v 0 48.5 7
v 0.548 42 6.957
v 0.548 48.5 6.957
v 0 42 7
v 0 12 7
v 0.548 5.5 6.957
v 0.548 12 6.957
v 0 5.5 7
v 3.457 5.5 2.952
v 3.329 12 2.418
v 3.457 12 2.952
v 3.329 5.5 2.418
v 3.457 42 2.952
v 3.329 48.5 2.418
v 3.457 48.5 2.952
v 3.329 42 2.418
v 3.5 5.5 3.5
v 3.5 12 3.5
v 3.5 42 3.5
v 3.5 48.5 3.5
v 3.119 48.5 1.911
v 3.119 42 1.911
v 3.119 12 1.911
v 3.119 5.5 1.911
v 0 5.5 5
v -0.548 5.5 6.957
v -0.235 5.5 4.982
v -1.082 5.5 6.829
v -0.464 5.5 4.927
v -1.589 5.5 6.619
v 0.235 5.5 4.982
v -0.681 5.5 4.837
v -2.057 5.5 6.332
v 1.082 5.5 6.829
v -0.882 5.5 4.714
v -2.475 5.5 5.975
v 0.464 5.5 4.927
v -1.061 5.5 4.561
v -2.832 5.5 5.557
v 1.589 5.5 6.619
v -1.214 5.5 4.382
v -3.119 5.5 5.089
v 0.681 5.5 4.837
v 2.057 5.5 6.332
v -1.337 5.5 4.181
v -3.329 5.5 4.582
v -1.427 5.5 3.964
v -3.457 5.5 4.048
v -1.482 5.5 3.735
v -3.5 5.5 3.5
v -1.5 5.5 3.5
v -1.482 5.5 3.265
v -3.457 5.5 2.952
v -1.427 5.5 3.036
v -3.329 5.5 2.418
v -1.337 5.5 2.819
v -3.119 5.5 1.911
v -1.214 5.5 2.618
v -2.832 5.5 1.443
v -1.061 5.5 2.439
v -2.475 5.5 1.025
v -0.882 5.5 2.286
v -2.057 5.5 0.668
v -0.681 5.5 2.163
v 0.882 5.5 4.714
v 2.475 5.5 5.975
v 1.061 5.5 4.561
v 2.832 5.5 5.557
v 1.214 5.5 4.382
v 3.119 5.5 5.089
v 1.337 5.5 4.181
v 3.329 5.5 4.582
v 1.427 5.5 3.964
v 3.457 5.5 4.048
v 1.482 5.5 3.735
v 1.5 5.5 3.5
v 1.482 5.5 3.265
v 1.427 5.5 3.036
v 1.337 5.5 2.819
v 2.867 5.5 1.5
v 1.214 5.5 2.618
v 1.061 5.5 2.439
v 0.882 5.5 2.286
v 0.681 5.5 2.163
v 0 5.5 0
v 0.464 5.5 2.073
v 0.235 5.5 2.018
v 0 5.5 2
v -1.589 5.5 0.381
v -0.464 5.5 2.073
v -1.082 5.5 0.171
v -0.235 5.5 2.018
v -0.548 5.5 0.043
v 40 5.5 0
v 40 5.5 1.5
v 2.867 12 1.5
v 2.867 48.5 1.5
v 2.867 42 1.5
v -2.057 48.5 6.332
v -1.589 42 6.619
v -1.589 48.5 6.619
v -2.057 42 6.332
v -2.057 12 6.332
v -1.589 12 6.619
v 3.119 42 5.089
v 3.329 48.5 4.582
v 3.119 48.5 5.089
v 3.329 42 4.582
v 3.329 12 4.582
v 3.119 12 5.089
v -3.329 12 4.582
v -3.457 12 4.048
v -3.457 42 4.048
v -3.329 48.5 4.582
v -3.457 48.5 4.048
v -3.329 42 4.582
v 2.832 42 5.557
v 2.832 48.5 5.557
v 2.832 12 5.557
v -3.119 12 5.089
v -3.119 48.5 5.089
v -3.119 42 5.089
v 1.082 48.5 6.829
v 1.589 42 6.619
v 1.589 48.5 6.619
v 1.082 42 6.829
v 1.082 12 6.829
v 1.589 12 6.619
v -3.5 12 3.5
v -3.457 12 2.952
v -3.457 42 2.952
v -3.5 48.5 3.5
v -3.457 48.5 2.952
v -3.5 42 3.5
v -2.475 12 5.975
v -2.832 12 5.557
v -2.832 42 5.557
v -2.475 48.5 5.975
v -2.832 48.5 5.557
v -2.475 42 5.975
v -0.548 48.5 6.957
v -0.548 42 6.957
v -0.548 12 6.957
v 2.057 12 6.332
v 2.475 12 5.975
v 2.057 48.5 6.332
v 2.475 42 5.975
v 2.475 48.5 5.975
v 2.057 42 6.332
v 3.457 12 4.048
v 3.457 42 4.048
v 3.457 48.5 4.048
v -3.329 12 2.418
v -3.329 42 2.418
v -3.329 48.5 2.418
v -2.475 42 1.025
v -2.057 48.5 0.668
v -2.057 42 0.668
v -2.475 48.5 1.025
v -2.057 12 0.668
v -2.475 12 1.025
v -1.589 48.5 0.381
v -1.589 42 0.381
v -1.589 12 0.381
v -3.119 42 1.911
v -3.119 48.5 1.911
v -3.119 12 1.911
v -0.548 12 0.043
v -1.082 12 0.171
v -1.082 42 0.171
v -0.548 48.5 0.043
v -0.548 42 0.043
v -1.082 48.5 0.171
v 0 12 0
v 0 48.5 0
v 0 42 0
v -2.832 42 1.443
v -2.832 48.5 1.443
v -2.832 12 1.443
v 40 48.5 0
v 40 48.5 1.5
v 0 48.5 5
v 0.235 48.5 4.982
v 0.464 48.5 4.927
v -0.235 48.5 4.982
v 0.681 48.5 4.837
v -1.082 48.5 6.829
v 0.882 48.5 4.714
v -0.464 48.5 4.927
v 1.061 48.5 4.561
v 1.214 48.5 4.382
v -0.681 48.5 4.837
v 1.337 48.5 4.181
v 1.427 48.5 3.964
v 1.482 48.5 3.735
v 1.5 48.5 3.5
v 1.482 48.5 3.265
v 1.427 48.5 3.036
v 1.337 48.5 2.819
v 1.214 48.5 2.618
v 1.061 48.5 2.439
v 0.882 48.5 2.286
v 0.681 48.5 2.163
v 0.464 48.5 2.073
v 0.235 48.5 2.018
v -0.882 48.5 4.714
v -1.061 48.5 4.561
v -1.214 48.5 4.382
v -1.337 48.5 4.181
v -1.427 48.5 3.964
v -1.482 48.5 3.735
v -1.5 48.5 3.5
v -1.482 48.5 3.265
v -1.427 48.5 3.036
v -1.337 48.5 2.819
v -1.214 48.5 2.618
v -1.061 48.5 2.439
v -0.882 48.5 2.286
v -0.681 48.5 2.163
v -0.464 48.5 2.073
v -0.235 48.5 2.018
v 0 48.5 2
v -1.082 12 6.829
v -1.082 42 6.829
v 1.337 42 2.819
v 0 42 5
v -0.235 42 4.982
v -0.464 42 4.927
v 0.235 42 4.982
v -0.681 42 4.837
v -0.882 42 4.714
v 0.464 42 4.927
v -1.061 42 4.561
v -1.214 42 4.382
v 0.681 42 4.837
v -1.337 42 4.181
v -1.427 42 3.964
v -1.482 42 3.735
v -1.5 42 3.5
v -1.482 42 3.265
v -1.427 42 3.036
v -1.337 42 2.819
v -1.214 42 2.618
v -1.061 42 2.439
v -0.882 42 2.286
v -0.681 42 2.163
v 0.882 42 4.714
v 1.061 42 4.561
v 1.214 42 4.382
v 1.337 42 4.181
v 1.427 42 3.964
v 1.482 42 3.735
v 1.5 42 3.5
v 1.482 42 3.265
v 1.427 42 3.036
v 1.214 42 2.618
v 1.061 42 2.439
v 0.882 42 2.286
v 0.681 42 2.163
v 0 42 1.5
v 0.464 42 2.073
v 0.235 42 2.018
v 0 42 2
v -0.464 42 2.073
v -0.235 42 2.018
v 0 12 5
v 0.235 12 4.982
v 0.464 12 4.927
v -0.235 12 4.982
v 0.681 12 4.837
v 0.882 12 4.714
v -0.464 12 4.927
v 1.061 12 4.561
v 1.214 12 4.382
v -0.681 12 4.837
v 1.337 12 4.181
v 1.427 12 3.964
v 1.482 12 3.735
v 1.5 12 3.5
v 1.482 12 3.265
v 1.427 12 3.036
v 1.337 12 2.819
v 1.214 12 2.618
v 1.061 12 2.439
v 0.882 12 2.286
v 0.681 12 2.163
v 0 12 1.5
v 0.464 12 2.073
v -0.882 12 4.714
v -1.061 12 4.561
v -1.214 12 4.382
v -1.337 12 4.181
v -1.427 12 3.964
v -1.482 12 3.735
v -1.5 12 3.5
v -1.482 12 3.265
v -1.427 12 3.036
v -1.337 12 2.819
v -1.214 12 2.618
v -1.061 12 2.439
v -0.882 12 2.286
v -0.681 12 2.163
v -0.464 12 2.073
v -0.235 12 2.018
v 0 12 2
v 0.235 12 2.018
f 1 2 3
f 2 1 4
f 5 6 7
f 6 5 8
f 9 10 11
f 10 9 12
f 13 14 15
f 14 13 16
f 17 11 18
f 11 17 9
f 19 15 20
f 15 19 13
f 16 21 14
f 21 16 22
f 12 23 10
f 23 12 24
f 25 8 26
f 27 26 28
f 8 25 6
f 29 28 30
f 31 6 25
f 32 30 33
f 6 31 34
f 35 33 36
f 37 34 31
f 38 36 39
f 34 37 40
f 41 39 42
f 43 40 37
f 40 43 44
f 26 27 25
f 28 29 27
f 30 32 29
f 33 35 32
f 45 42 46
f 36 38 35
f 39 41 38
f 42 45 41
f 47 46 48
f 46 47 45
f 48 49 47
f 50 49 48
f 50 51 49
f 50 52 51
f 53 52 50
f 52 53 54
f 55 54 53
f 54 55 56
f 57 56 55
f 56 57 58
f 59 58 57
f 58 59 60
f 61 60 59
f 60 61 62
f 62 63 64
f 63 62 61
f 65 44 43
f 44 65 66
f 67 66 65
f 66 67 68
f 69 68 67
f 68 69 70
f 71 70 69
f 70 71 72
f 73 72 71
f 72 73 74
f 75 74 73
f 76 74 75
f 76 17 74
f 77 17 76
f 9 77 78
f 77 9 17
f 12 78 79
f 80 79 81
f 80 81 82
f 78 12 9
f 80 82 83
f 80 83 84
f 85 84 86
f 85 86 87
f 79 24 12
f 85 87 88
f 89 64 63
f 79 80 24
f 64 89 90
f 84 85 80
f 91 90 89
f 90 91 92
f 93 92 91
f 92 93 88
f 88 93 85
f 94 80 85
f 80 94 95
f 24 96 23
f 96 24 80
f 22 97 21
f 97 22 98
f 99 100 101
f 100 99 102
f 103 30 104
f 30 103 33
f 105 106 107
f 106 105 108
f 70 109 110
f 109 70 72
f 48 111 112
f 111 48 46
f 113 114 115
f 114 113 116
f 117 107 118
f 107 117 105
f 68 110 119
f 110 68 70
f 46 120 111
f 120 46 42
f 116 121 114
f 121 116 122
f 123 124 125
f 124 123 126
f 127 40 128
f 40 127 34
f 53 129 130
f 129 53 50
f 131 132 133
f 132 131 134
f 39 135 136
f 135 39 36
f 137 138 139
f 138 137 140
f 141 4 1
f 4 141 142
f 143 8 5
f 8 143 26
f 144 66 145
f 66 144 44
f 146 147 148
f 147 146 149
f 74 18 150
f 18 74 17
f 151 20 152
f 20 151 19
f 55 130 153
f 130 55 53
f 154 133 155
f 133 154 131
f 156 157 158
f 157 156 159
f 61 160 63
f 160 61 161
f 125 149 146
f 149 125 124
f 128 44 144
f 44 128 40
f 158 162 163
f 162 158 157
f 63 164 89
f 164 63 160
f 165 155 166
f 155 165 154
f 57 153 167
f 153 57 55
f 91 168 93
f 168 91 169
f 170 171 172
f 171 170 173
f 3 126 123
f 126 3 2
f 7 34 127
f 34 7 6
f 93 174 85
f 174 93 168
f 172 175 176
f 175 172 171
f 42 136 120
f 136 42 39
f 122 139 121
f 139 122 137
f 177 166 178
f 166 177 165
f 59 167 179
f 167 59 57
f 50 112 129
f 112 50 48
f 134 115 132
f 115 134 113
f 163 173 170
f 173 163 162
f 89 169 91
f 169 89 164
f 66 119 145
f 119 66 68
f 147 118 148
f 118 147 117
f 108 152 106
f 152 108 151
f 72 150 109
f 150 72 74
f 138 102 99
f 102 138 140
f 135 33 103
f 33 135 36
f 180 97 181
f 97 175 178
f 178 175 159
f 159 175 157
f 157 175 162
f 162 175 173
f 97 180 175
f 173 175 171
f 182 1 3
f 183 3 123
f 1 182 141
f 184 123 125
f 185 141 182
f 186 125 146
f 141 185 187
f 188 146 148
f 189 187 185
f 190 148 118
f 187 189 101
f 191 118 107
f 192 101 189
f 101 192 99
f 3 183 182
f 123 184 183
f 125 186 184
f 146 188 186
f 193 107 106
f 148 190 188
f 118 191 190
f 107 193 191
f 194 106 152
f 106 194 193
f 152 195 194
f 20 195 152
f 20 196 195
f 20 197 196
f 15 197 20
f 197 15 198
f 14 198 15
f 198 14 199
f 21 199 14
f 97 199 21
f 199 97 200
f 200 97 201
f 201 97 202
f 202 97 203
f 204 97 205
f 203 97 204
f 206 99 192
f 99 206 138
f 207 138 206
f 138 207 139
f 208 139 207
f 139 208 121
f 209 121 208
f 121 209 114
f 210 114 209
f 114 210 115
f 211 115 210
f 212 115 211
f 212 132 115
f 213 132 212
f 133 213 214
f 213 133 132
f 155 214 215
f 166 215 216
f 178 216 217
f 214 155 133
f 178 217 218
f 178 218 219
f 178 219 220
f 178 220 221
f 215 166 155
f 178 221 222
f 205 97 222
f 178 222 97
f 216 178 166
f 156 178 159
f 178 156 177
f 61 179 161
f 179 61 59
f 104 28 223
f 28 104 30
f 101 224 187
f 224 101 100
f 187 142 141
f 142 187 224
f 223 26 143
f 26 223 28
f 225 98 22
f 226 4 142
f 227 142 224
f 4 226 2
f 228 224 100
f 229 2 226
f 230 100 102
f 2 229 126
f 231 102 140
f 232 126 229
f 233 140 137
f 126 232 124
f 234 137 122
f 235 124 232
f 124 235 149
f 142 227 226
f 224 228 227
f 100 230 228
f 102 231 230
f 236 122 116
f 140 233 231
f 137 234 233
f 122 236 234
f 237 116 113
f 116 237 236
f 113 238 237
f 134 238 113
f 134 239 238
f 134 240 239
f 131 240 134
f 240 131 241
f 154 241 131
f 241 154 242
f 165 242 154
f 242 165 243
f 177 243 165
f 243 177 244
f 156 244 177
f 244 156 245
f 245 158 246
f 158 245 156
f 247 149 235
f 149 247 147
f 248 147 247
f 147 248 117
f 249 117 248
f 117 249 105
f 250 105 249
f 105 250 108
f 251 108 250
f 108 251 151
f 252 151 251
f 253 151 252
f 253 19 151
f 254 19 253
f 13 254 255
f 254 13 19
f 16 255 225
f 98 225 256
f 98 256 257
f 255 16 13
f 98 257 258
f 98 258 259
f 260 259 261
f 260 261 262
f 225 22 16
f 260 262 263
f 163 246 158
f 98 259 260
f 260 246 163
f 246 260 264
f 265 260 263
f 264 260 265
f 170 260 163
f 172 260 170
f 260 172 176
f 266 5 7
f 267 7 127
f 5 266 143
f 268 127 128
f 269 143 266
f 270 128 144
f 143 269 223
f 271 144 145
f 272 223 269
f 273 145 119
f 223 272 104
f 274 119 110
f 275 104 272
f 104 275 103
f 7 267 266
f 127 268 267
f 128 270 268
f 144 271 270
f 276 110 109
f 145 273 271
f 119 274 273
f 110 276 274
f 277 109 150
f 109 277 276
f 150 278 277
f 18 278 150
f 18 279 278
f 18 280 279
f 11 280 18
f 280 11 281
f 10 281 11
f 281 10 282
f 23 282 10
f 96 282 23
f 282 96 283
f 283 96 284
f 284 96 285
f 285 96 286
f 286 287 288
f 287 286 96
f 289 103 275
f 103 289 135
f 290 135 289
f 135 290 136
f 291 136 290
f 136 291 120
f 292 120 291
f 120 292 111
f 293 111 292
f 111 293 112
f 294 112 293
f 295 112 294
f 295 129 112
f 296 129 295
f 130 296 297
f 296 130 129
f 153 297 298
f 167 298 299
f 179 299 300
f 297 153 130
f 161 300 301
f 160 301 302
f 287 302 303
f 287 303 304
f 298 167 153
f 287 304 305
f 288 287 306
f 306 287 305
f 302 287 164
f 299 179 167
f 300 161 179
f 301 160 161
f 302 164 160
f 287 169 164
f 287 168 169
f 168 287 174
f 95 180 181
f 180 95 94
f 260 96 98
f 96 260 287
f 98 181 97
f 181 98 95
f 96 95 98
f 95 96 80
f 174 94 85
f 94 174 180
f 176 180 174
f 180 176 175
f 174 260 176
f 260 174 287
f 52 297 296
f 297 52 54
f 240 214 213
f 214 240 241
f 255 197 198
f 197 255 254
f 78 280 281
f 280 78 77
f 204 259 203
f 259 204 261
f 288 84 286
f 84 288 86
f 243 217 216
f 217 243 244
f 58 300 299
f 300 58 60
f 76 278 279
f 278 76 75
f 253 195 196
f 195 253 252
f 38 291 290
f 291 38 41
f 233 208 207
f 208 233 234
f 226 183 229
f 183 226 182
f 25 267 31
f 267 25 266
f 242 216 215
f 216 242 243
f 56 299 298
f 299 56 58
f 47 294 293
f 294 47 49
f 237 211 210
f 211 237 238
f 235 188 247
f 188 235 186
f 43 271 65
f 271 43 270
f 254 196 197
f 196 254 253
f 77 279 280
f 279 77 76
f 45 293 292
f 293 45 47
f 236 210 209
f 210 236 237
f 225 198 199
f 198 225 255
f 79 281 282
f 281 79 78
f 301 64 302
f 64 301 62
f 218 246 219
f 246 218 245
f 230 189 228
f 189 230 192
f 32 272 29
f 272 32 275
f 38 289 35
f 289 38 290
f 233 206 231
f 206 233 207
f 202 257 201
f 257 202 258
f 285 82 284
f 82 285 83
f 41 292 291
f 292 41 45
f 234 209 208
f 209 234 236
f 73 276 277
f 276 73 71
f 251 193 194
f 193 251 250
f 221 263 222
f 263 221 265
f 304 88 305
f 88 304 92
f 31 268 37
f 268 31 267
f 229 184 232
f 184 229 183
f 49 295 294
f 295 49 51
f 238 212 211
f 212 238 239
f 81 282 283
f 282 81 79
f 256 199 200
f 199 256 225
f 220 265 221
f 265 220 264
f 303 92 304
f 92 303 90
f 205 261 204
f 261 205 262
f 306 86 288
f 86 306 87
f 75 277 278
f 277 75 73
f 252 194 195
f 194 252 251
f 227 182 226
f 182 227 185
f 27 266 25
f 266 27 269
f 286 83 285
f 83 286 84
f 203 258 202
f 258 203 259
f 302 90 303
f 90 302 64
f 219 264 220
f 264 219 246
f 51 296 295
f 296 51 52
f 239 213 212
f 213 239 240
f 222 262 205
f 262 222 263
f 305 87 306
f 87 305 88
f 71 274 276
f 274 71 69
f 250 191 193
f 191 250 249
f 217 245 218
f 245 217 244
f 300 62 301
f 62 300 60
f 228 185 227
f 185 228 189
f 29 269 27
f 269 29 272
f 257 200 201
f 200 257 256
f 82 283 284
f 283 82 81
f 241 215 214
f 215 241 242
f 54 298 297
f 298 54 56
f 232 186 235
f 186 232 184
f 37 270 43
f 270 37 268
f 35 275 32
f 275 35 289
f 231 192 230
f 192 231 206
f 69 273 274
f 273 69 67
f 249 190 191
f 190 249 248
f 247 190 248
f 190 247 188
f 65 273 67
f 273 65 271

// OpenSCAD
barrel_radius = 3.5;
// Inner
translate([0, 5.5, 0]) {
    difference() {
        union() {
            cube([40, 43, 1.5]);
            translate([0, 0, barrel_radius]) {
                rotate([-90, 0, 0])
                difference() {
                // outer tube
                cylinder(r=barrel_radius, h=43, $fn=40);
                translate([0, 0, 6.5])
                // outer tube cutout
                cylinder(r=barrel_radius, h=30, $fn=40);
                }

            }
        }
    
    translate([0, 0, barrel_radius]) 
       rotate([-90, 0, 0])
    difference() {
        cylinder(r=1.5, h=43, $fn=40);
        translate([0, 0, 5])
%            cylinder(r=3, h=30, $fn=40);
    }   
    }
}

/*
//translate([0, 60, 0]) {
    // Outer pipe
    translate([0, 0, 1.25]) {
        rotate([-90, 0, 0])
        difference() {
            cylinder(r=1.25, h=54, $fn=40);
            translate([0, 0, 11.5]) 
            cylinder(r=1.25, h=31, $fn=40);
        }
    }

    // Outer
        difference() {
            cube([60, 54, 2]);
            translate([0, 5, -1]) {
                cube([50, 44, 4]);
            }
        }
//    }
/**/
